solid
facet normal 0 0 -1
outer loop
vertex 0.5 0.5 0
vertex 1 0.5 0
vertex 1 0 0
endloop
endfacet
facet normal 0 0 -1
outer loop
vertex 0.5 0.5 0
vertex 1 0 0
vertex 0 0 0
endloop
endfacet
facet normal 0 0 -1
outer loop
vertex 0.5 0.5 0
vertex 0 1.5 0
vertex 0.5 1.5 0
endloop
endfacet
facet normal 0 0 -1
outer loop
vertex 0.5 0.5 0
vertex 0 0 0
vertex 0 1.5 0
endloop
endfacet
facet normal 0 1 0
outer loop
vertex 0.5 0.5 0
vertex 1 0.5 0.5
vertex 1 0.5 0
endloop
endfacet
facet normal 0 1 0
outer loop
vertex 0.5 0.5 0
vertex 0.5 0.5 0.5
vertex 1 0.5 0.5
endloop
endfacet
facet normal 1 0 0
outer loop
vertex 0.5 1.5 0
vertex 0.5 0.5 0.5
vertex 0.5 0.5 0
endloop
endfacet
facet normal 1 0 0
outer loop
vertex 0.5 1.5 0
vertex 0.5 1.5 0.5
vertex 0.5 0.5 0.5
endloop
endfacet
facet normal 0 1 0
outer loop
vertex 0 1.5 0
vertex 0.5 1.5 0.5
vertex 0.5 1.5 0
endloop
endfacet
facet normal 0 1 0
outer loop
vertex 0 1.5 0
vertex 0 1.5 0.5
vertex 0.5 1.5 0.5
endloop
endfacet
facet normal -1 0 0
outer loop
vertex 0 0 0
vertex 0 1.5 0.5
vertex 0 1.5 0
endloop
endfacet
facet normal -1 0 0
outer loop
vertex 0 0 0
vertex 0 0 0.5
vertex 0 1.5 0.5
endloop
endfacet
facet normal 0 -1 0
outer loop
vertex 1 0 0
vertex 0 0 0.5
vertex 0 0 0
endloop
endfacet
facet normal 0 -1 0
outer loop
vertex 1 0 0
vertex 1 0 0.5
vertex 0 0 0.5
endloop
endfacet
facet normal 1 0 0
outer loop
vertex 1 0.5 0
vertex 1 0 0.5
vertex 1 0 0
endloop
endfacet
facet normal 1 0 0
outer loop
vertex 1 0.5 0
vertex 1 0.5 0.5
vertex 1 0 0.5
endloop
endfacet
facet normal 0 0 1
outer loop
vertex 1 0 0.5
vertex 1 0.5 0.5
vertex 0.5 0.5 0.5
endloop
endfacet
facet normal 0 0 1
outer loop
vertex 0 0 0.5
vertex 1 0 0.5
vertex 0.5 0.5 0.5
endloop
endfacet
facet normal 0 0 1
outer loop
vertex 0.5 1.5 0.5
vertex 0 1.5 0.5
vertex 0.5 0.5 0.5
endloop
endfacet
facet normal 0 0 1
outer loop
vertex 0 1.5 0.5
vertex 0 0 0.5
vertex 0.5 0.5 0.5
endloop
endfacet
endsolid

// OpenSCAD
// Tetromino (L) for Stacks of Shapes
// by Slashee the Cow
linear_extrude(0.5)
polygon([[0,0],[1,0],[1,0.5],[0.5,0.5],[0.5,1.5],[0,1.5]]);
